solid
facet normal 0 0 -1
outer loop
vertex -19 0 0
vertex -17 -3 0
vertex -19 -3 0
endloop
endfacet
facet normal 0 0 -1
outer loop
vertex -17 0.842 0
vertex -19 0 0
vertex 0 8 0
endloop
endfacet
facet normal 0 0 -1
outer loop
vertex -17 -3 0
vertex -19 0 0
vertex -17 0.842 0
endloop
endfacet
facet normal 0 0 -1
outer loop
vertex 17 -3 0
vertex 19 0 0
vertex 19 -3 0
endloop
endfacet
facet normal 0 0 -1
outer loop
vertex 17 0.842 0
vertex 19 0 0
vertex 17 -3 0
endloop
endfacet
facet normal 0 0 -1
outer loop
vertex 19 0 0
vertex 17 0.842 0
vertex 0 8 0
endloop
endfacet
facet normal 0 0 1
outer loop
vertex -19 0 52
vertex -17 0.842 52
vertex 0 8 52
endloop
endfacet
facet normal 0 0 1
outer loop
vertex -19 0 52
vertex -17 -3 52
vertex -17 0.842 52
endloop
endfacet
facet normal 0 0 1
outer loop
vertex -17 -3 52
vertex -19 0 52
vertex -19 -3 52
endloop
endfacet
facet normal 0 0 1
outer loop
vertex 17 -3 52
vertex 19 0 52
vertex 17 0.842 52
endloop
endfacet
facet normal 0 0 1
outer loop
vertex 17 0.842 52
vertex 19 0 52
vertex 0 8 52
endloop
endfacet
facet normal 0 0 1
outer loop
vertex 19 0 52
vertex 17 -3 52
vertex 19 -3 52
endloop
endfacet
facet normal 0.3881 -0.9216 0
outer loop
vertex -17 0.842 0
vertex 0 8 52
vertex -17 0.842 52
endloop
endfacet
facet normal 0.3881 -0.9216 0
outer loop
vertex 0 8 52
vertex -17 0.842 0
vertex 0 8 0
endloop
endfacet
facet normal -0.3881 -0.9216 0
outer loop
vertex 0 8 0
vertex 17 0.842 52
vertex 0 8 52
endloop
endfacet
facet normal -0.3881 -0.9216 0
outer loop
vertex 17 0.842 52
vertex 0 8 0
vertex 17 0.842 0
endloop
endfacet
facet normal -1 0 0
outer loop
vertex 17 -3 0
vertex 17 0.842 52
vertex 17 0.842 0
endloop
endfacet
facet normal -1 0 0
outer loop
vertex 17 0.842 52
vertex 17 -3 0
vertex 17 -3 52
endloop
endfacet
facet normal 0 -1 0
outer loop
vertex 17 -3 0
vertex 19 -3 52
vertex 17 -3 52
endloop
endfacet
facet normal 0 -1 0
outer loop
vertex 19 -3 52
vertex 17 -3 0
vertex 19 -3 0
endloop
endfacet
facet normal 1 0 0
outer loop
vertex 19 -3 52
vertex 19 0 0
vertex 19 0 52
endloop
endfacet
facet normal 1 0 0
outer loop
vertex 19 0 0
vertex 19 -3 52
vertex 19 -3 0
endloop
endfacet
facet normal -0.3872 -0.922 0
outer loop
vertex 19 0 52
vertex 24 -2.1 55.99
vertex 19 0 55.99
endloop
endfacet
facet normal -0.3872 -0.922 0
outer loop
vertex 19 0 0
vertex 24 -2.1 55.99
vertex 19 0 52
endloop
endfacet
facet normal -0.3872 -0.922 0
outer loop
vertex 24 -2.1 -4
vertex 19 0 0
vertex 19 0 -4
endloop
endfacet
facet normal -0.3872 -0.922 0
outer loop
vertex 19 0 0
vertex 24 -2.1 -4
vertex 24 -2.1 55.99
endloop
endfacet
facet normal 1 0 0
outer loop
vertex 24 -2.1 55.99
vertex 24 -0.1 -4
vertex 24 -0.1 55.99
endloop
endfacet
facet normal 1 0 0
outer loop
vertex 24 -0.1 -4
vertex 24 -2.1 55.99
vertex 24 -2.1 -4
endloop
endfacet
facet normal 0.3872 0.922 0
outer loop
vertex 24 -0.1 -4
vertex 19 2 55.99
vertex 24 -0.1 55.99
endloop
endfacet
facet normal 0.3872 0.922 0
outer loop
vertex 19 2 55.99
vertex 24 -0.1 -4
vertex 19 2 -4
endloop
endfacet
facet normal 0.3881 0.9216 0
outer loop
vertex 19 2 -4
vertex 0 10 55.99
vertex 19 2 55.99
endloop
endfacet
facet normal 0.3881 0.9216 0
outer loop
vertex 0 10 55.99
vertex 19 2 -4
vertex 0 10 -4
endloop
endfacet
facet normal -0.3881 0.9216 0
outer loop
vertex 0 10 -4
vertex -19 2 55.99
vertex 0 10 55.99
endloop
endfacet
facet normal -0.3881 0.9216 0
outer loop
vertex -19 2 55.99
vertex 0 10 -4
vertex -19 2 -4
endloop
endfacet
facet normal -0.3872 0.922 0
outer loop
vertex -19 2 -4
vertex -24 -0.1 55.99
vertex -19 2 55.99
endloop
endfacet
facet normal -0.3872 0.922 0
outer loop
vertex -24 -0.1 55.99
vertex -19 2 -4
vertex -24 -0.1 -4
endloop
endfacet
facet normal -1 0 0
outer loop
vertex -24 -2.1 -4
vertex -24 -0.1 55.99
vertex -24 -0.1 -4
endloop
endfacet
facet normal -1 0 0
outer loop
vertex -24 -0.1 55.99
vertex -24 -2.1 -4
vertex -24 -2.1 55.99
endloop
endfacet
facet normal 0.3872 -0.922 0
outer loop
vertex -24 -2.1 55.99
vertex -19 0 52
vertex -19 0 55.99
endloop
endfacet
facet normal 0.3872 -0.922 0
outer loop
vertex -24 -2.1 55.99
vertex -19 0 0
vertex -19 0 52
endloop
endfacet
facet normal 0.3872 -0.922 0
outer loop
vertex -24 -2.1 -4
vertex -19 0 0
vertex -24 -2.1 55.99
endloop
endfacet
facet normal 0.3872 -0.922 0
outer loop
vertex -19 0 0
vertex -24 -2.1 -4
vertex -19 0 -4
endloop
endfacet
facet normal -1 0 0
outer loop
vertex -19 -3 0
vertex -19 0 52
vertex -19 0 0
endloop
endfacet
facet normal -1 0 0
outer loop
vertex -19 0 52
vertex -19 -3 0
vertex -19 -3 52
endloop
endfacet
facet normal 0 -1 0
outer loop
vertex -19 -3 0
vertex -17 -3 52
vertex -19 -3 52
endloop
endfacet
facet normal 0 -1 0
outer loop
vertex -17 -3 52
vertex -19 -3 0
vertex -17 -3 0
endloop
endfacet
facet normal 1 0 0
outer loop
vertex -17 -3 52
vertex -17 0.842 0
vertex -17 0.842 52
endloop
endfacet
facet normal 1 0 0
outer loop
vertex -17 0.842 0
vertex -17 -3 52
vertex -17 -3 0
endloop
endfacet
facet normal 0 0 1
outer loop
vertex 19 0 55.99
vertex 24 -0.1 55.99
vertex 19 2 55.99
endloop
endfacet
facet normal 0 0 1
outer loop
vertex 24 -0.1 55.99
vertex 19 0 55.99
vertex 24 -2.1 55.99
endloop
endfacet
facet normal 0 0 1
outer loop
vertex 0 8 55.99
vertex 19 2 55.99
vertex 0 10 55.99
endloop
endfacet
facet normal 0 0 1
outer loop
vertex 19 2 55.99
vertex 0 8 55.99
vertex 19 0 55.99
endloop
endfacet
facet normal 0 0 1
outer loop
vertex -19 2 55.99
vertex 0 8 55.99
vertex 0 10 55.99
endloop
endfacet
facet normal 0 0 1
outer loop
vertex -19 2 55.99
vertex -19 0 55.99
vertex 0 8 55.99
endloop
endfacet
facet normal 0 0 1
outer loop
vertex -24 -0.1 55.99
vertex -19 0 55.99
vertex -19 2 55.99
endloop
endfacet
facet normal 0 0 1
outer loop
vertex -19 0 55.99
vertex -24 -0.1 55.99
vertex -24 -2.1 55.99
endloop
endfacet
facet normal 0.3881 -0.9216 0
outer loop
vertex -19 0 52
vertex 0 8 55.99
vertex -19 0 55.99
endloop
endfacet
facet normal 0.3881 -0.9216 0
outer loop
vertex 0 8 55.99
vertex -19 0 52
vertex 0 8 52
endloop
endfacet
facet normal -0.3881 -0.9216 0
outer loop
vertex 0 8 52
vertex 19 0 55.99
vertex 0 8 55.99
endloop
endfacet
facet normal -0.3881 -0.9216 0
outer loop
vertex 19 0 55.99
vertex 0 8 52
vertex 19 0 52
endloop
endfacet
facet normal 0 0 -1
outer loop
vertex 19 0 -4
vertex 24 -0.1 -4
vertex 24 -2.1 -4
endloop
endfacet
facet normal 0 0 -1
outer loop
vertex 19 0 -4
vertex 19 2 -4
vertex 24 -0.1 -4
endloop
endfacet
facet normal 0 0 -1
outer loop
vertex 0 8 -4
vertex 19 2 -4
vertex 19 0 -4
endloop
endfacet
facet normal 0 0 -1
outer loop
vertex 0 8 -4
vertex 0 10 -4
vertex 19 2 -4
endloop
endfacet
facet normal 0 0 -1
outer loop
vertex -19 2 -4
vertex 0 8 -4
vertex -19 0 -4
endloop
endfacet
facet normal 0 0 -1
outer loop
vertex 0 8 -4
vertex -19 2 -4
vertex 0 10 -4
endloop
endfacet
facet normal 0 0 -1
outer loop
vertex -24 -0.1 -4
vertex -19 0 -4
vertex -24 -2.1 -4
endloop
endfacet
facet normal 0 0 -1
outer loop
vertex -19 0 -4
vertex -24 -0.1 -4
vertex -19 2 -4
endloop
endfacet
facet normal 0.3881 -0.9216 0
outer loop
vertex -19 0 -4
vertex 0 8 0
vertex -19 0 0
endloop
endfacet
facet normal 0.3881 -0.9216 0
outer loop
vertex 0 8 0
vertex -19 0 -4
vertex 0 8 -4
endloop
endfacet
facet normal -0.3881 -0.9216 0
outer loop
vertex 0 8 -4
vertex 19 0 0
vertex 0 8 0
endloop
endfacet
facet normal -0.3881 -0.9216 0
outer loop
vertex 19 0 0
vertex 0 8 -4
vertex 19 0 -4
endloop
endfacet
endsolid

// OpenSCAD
$fn=100;

length=52;
height=8;
width=19;

module roof() {
  polygon([[-width, 0], [0, height], [width,0], [width+5, -2.1], [width+5, -0.1], [width, 2], [0, height+2], [-width, 2], [-width-5, -0.1], [-width-5, -2.1]]);
}

linear_extrude(length) {
  roof();
  polygon([[-width, 0], [-width, -3], [-width+2, -3], [-width+2, 1]]);
  polygon([[width, 0], [width, -3], [width-2, -3], [width-2, 1]]);
}

translate([0,0,length-0.01]) {
  linear_extrude(4) {
    roof();
  }
}

translate([0,0,-4]) {
  linear_extrude(4.001) {
    roof();
  }
}
